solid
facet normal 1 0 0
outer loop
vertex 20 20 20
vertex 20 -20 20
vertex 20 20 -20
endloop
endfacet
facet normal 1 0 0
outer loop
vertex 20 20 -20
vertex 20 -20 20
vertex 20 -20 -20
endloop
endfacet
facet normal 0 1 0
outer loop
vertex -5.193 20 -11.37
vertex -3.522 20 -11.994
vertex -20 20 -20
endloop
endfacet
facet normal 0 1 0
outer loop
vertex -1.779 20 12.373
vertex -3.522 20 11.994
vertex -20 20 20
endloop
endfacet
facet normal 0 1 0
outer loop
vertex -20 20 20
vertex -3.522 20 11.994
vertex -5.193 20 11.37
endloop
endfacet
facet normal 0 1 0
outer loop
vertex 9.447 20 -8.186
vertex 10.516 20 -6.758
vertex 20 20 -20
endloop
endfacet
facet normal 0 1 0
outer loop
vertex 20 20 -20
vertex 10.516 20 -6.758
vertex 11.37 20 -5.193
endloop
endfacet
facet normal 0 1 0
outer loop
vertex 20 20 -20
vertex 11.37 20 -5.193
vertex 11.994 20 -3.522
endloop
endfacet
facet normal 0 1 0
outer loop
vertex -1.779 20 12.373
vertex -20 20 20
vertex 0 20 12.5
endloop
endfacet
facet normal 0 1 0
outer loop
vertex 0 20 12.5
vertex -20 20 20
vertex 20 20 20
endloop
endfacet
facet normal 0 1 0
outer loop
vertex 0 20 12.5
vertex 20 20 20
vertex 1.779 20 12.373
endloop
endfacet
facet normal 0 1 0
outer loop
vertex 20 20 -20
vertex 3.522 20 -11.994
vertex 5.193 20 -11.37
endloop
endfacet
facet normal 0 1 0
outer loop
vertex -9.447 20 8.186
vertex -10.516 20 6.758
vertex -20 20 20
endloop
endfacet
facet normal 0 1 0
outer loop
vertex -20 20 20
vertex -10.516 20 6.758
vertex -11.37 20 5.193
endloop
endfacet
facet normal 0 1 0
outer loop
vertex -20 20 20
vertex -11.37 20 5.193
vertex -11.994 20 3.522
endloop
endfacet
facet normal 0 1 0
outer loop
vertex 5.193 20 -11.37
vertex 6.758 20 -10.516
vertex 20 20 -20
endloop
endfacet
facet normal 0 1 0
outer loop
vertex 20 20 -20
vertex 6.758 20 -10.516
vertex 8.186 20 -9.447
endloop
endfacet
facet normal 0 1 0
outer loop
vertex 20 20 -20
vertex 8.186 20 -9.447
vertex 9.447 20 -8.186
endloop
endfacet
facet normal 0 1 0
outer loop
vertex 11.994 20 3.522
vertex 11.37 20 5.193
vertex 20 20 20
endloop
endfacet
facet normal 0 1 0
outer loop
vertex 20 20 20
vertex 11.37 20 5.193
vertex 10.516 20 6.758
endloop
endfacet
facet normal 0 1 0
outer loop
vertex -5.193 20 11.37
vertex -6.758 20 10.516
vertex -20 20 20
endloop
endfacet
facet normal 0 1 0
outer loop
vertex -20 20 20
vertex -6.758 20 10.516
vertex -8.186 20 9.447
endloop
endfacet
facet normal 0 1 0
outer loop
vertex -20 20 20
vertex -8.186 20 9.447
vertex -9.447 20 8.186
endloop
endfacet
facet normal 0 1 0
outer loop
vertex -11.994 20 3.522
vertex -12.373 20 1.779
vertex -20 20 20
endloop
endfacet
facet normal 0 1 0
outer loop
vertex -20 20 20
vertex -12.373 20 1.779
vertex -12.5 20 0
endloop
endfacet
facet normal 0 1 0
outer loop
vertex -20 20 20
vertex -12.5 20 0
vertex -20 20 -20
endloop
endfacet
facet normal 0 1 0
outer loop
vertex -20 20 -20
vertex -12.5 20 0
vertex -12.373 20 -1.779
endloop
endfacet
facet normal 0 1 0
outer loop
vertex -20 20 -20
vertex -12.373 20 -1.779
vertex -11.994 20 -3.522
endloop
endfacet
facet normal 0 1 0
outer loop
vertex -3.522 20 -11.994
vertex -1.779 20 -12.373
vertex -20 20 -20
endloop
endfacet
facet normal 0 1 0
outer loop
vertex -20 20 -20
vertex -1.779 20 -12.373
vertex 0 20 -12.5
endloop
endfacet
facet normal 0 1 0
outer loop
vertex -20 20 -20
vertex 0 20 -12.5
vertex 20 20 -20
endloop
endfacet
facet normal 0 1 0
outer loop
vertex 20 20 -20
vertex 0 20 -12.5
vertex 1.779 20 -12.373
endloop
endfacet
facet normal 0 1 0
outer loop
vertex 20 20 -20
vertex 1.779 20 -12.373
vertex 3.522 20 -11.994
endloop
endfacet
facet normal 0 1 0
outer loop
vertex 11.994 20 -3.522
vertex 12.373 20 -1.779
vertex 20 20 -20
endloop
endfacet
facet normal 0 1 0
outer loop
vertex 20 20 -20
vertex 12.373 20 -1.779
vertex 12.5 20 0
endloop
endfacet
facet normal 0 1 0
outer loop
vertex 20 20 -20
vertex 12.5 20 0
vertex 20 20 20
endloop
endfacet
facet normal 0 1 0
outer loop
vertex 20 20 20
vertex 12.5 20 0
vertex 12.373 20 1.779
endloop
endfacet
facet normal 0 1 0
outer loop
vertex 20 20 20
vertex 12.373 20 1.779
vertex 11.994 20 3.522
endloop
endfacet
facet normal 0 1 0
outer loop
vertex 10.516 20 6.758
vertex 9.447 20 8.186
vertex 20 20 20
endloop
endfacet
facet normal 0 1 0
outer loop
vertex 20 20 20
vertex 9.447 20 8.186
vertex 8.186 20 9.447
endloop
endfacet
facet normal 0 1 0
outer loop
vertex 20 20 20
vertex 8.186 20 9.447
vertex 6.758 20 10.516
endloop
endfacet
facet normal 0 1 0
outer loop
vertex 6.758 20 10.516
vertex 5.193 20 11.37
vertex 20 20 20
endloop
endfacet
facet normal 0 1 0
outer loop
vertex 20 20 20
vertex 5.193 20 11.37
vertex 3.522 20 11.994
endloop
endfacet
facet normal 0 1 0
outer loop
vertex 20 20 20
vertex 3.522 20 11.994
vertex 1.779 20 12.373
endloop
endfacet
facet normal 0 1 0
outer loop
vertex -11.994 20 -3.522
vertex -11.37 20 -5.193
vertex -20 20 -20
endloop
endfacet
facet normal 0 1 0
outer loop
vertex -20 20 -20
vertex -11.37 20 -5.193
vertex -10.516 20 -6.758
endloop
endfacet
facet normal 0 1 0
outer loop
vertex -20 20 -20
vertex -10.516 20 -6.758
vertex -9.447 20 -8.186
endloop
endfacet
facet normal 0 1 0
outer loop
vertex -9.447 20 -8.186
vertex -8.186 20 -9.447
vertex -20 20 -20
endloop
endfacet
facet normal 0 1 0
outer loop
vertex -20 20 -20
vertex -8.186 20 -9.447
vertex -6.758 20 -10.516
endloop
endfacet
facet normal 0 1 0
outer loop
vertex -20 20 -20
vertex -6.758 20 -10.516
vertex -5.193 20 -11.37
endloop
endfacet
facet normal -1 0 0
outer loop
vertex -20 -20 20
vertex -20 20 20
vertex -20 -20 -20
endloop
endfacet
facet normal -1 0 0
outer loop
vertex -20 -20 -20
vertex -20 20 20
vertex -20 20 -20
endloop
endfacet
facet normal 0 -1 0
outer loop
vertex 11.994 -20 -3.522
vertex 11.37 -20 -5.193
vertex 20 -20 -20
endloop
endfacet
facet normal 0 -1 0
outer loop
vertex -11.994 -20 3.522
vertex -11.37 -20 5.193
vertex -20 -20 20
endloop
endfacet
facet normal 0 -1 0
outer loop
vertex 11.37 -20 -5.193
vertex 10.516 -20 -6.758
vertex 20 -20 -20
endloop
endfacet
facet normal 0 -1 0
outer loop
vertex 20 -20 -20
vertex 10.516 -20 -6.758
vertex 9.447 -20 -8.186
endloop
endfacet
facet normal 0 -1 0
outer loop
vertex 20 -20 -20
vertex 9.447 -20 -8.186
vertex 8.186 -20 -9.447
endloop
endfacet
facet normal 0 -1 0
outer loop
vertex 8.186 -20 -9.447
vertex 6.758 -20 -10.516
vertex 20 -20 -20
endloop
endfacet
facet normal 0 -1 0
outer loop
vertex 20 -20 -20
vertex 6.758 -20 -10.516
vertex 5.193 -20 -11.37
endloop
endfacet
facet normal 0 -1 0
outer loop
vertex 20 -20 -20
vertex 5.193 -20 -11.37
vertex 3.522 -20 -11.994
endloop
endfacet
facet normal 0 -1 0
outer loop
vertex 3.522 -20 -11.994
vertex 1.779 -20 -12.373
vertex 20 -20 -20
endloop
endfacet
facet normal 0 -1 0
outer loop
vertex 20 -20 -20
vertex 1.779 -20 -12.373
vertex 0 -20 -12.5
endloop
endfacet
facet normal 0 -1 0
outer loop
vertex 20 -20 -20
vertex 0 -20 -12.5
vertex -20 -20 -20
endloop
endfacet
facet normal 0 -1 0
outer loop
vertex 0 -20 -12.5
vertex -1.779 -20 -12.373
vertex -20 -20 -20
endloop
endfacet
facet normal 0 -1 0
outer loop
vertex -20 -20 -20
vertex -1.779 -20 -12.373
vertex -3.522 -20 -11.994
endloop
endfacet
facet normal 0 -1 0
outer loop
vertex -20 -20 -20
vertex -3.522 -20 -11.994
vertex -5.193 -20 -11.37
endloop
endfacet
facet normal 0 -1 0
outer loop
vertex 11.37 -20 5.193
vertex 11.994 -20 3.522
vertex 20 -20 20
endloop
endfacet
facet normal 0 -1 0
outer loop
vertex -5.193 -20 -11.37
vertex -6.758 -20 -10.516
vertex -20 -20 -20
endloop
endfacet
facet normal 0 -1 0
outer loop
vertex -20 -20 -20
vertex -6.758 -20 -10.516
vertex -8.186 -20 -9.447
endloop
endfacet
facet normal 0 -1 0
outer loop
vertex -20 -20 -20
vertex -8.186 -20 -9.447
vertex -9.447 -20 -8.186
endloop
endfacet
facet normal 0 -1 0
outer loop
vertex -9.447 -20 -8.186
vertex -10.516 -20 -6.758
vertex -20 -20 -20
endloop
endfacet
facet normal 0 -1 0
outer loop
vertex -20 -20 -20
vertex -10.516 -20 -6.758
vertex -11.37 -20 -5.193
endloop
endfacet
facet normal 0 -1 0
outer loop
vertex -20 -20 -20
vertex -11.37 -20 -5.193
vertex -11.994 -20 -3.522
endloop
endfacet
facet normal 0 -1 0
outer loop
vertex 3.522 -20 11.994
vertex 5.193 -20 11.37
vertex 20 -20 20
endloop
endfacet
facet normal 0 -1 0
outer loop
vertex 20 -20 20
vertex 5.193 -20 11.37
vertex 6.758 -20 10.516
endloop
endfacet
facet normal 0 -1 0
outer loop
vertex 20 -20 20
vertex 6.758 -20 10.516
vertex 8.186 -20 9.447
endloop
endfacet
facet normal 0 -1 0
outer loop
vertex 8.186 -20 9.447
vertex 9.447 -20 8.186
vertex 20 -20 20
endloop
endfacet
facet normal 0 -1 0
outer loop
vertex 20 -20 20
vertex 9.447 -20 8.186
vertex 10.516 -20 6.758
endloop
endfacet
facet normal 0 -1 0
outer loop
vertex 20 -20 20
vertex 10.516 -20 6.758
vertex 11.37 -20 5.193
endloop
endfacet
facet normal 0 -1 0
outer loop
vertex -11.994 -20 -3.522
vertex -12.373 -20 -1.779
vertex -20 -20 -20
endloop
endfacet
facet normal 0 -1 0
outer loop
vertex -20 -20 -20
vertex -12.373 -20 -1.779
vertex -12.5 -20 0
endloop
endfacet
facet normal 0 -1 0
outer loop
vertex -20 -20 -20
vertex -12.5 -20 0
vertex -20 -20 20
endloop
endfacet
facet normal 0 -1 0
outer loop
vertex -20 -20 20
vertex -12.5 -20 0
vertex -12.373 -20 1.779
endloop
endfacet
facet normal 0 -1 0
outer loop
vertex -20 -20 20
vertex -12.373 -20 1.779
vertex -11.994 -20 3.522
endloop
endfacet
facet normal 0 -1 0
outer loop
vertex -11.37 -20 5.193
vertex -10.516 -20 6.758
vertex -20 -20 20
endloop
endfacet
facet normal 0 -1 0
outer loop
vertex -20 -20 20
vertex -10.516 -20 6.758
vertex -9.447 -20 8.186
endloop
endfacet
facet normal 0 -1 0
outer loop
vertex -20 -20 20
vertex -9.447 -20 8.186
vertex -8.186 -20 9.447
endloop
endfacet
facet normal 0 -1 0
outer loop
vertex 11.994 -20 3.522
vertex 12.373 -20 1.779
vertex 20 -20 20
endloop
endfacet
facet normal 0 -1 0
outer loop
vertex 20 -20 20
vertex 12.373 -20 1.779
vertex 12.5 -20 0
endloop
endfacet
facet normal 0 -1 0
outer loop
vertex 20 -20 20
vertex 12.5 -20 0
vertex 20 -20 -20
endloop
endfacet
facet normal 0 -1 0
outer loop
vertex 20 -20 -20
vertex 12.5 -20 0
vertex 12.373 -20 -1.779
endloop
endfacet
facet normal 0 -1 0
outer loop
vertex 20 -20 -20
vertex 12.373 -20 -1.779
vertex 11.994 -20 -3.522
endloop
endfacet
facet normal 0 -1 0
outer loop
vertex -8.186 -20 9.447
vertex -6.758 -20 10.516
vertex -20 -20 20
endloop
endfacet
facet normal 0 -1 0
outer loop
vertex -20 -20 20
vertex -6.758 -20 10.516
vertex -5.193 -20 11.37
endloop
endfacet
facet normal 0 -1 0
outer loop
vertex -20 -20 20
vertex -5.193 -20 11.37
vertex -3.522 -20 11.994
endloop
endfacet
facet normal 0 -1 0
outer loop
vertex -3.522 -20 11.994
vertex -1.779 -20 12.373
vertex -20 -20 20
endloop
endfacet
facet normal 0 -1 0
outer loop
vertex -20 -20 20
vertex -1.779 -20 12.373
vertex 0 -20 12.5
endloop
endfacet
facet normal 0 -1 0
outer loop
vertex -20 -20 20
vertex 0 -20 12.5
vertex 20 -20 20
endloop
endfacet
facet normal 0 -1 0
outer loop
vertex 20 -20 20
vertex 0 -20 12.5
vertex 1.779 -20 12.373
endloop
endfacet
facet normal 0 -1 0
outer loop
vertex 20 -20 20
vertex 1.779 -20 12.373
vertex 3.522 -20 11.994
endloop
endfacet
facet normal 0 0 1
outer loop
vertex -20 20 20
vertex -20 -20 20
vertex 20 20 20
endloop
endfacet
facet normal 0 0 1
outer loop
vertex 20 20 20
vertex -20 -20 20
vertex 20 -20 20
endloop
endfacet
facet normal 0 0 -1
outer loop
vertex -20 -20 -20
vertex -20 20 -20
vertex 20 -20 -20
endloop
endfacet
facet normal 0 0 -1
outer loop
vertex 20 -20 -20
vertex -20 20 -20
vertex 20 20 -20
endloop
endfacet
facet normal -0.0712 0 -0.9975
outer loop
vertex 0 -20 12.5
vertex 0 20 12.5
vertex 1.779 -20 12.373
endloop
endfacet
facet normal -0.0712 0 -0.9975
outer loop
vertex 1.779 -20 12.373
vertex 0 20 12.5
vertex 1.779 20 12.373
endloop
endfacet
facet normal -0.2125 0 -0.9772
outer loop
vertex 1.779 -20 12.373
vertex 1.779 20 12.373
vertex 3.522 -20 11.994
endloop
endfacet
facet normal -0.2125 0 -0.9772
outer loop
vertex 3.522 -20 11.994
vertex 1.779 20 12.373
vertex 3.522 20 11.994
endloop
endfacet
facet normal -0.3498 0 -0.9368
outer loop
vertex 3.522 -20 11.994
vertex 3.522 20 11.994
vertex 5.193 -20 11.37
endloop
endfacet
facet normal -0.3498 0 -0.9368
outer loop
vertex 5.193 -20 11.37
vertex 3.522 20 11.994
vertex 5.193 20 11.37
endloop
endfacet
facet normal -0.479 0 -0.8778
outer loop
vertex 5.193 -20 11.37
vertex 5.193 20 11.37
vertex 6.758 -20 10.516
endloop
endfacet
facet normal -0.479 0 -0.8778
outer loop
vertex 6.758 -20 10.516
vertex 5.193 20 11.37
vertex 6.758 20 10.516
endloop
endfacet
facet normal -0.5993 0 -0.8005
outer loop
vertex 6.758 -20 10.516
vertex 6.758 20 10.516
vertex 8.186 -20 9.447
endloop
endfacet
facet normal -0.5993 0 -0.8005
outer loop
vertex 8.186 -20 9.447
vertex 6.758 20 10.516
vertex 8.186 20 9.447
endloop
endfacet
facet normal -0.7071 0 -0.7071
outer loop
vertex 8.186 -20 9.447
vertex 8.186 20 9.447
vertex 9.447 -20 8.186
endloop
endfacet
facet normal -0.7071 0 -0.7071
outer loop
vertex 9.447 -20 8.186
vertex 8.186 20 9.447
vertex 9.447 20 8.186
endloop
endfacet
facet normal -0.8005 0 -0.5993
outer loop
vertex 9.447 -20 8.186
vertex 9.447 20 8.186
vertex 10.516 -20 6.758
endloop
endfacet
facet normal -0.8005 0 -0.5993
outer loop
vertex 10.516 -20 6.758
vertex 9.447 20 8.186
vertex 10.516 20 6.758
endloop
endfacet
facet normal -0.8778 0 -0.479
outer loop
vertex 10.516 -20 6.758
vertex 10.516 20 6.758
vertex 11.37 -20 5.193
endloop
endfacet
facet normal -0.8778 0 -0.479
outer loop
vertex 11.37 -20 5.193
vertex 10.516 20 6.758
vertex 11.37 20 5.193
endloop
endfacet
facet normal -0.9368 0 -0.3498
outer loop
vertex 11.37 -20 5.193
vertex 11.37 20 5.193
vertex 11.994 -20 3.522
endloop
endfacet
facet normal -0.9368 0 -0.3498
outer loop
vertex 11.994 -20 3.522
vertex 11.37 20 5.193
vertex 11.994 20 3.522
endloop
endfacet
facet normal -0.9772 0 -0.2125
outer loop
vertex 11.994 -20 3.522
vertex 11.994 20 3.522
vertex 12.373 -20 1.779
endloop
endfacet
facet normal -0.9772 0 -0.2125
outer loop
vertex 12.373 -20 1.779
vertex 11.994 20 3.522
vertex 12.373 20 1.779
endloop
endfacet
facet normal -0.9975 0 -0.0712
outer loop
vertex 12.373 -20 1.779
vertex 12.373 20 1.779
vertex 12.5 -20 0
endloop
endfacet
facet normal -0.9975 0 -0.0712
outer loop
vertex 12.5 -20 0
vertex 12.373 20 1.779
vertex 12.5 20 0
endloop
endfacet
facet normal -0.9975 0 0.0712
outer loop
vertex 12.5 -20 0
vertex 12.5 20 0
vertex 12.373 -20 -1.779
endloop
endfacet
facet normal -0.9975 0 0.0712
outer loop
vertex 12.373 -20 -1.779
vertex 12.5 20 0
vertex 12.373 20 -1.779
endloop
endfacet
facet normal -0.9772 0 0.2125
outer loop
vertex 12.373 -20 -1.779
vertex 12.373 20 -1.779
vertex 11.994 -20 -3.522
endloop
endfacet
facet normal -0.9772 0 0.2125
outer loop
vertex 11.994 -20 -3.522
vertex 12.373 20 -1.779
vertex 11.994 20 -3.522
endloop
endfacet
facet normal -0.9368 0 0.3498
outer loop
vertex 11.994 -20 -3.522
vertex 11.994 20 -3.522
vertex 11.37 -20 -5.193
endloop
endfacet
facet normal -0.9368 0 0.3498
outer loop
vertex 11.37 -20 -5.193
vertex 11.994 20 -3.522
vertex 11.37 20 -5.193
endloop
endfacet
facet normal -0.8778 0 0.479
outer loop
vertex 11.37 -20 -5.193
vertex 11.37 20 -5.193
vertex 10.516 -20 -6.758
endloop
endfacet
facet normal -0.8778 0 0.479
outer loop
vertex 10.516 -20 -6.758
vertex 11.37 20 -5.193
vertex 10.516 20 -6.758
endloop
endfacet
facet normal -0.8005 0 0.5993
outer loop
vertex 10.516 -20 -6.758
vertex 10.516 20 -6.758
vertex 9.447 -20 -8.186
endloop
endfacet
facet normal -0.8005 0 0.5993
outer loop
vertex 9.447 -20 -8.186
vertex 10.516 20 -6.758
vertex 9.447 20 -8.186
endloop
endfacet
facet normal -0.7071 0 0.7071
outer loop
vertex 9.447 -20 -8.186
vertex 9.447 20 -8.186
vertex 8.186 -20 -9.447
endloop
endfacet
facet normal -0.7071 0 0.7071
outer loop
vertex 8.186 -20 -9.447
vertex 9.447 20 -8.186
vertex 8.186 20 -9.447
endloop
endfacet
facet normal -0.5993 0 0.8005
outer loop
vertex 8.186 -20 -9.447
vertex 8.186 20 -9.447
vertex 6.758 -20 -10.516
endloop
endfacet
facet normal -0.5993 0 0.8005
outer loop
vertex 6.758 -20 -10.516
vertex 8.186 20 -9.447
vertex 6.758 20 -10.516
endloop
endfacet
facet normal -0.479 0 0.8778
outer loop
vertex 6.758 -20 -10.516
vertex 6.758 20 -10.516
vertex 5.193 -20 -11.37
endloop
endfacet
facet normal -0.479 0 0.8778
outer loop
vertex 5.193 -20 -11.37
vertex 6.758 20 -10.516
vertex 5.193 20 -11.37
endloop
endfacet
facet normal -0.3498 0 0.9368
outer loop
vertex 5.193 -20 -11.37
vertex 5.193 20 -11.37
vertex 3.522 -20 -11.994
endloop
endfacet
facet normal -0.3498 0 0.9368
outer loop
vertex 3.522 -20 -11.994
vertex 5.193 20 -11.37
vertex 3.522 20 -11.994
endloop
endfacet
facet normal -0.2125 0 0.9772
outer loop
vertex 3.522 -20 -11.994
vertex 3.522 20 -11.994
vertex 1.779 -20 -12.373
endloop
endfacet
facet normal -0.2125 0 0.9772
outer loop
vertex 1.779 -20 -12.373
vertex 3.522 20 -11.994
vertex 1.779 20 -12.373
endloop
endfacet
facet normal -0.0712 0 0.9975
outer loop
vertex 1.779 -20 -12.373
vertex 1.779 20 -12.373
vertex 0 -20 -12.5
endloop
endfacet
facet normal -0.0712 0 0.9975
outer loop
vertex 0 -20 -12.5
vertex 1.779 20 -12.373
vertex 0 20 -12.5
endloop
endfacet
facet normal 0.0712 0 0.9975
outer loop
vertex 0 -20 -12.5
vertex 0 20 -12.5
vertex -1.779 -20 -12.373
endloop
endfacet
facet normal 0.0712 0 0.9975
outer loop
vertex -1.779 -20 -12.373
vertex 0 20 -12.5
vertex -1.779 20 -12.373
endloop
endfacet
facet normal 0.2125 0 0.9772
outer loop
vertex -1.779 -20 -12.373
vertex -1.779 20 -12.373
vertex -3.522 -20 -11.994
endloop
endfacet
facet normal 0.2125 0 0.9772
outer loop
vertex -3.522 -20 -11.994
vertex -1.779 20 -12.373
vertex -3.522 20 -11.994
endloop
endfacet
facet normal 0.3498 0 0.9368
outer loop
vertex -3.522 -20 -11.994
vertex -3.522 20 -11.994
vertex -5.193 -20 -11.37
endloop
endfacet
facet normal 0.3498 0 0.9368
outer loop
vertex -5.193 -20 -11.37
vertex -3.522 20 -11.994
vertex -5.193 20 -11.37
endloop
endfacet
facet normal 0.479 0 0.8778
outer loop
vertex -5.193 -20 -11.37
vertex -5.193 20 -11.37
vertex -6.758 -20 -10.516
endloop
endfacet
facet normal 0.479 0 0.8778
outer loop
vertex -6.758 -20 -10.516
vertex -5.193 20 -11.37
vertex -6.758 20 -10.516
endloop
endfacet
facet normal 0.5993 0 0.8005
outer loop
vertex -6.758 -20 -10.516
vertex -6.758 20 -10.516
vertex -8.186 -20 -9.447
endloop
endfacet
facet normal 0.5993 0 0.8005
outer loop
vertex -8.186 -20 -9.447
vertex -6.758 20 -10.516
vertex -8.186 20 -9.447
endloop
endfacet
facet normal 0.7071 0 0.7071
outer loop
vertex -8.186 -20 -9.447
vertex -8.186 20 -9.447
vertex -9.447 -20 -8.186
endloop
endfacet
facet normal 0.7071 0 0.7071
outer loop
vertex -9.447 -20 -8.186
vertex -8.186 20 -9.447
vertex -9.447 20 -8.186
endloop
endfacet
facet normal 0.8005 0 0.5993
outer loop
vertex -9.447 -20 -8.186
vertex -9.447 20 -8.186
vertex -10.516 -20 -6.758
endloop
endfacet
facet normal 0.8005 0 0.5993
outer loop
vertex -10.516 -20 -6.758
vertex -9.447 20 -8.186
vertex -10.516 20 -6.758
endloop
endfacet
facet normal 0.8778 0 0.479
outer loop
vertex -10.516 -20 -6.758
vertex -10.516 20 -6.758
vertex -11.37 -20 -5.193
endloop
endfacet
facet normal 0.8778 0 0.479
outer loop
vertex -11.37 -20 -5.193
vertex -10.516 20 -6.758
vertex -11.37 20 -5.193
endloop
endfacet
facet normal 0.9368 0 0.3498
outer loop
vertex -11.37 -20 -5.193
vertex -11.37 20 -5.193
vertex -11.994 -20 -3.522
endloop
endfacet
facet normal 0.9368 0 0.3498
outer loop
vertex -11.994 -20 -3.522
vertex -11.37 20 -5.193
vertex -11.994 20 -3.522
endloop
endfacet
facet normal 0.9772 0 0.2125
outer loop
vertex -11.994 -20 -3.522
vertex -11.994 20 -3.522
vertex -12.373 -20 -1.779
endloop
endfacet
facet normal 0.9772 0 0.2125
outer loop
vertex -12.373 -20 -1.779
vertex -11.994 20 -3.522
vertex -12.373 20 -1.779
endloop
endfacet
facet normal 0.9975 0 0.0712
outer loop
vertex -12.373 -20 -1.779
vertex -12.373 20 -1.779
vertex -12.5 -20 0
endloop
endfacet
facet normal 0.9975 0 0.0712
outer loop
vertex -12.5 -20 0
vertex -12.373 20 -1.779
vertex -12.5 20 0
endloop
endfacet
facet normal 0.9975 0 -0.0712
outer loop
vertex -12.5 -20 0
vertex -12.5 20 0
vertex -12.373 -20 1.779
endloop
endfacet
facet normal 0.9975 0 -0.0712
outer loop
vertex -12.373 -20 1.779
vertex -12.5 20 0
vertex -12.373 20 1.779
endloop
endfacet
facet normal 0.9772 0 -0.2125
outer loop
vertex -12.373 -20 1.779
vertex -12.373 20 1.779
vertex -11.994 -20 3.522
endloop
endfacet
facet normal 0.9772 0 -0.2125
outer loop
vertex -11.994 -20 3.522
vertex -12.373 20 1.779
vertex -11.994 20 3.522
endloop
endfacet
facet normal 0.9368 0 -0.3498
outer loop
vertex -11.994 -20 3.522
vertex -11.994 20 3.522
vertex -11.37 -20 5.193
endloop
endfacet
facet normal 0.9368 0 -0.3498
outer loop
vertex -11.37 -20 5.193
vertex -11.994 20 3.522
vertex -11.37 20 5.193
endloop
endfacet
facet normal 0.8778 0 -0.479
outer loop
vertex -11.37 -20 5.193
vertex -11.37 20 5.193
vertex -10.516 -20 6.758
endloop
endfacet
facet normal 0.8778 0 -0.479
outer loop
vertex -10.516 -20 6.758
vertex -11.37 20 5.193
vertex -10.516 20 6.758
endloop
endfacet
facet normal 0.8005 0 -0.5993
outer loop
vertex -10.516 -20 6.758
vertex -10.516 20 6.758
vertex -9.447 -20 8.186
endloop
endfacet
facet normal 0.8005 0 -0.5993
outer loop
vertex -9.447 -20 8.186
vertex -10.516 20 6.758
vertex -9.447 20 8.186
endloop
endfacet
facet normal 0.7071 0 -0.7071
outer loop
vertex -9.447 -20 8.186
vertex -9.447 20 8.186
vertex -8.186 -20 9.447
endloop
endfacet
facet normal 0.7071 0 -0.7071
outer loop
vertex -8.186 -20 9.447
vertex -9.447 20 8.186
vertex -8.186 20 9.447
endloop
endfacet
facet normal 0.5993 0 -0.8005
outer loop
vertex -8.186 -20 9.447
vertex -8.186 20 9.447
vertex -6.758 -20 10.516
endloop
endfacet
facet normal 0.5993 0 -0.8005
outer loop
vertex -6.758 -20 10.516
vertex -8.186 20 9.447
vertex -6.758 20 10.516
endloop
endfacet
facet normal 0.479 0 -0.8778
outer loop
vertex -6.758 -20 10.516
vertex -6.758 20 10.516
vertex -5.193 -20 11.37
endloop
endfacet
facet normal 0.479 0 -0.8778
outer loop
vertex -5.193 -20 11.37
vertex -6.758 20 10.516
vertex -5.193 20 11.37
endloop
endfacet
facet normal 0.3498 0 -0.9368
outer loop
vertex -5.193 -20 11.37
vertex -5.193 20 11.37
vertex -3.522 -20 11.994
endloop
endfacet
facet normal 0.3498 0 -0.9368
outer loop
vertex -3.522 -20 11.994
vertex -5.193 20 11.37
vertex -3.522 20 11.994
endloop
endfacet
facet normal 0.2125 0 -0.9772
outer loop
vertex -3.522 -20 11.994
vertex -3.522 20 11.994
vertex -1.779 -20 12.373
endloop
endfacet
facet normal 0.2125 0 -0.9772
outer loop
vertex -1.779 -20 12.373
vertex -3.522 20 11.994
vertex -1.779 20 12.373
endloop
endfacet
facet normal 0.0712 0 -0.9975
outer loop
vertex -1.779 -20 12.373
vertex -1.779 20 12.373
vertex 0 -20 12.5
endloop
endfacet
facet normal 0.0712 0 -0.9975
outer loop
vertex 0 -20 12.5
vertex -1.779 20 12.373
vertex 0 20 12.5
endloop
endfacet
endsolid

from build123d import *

# Parameters (mm, degrees)
SKETCH1_W               = 40
SKETCH1_H               = 40
BOSS_EXTRUDE1_DEPTH     = 20
CUT_EXTRUDE2_DEPTH      = 35.641016151
CUT_EXTRUDE2_DEPTH_BACK = 35.641016151
SKETCH2_R               = 12.5


with BuildPart() as part:
    # Sketch1 → Boss-Extrude1 (new, symmetric)
    with BuildSketch(Plane.XY):
        Rectangle(SKETCH1_W, SKETCH1_H)
    extrude(amount=BOSS_EXTRUDE1_DEPTH, both=True)

    # Sketch2 → Cut-Extrude2 (cut, two sides: drawn at the far end of the back side and taken through both)
    with BuildSketch(Plane.ZX.offset(-CUT_EXTRUDE2_DEPTH_BACK)):
        Circle(SKETCH2_R)
    extrude(amount=CUT_EXTRUDE2_DEPTH + CUT_EXTRUDE2_DEPTH_BACK, mode=Mode.SUBTRACT)


solid = part.part
